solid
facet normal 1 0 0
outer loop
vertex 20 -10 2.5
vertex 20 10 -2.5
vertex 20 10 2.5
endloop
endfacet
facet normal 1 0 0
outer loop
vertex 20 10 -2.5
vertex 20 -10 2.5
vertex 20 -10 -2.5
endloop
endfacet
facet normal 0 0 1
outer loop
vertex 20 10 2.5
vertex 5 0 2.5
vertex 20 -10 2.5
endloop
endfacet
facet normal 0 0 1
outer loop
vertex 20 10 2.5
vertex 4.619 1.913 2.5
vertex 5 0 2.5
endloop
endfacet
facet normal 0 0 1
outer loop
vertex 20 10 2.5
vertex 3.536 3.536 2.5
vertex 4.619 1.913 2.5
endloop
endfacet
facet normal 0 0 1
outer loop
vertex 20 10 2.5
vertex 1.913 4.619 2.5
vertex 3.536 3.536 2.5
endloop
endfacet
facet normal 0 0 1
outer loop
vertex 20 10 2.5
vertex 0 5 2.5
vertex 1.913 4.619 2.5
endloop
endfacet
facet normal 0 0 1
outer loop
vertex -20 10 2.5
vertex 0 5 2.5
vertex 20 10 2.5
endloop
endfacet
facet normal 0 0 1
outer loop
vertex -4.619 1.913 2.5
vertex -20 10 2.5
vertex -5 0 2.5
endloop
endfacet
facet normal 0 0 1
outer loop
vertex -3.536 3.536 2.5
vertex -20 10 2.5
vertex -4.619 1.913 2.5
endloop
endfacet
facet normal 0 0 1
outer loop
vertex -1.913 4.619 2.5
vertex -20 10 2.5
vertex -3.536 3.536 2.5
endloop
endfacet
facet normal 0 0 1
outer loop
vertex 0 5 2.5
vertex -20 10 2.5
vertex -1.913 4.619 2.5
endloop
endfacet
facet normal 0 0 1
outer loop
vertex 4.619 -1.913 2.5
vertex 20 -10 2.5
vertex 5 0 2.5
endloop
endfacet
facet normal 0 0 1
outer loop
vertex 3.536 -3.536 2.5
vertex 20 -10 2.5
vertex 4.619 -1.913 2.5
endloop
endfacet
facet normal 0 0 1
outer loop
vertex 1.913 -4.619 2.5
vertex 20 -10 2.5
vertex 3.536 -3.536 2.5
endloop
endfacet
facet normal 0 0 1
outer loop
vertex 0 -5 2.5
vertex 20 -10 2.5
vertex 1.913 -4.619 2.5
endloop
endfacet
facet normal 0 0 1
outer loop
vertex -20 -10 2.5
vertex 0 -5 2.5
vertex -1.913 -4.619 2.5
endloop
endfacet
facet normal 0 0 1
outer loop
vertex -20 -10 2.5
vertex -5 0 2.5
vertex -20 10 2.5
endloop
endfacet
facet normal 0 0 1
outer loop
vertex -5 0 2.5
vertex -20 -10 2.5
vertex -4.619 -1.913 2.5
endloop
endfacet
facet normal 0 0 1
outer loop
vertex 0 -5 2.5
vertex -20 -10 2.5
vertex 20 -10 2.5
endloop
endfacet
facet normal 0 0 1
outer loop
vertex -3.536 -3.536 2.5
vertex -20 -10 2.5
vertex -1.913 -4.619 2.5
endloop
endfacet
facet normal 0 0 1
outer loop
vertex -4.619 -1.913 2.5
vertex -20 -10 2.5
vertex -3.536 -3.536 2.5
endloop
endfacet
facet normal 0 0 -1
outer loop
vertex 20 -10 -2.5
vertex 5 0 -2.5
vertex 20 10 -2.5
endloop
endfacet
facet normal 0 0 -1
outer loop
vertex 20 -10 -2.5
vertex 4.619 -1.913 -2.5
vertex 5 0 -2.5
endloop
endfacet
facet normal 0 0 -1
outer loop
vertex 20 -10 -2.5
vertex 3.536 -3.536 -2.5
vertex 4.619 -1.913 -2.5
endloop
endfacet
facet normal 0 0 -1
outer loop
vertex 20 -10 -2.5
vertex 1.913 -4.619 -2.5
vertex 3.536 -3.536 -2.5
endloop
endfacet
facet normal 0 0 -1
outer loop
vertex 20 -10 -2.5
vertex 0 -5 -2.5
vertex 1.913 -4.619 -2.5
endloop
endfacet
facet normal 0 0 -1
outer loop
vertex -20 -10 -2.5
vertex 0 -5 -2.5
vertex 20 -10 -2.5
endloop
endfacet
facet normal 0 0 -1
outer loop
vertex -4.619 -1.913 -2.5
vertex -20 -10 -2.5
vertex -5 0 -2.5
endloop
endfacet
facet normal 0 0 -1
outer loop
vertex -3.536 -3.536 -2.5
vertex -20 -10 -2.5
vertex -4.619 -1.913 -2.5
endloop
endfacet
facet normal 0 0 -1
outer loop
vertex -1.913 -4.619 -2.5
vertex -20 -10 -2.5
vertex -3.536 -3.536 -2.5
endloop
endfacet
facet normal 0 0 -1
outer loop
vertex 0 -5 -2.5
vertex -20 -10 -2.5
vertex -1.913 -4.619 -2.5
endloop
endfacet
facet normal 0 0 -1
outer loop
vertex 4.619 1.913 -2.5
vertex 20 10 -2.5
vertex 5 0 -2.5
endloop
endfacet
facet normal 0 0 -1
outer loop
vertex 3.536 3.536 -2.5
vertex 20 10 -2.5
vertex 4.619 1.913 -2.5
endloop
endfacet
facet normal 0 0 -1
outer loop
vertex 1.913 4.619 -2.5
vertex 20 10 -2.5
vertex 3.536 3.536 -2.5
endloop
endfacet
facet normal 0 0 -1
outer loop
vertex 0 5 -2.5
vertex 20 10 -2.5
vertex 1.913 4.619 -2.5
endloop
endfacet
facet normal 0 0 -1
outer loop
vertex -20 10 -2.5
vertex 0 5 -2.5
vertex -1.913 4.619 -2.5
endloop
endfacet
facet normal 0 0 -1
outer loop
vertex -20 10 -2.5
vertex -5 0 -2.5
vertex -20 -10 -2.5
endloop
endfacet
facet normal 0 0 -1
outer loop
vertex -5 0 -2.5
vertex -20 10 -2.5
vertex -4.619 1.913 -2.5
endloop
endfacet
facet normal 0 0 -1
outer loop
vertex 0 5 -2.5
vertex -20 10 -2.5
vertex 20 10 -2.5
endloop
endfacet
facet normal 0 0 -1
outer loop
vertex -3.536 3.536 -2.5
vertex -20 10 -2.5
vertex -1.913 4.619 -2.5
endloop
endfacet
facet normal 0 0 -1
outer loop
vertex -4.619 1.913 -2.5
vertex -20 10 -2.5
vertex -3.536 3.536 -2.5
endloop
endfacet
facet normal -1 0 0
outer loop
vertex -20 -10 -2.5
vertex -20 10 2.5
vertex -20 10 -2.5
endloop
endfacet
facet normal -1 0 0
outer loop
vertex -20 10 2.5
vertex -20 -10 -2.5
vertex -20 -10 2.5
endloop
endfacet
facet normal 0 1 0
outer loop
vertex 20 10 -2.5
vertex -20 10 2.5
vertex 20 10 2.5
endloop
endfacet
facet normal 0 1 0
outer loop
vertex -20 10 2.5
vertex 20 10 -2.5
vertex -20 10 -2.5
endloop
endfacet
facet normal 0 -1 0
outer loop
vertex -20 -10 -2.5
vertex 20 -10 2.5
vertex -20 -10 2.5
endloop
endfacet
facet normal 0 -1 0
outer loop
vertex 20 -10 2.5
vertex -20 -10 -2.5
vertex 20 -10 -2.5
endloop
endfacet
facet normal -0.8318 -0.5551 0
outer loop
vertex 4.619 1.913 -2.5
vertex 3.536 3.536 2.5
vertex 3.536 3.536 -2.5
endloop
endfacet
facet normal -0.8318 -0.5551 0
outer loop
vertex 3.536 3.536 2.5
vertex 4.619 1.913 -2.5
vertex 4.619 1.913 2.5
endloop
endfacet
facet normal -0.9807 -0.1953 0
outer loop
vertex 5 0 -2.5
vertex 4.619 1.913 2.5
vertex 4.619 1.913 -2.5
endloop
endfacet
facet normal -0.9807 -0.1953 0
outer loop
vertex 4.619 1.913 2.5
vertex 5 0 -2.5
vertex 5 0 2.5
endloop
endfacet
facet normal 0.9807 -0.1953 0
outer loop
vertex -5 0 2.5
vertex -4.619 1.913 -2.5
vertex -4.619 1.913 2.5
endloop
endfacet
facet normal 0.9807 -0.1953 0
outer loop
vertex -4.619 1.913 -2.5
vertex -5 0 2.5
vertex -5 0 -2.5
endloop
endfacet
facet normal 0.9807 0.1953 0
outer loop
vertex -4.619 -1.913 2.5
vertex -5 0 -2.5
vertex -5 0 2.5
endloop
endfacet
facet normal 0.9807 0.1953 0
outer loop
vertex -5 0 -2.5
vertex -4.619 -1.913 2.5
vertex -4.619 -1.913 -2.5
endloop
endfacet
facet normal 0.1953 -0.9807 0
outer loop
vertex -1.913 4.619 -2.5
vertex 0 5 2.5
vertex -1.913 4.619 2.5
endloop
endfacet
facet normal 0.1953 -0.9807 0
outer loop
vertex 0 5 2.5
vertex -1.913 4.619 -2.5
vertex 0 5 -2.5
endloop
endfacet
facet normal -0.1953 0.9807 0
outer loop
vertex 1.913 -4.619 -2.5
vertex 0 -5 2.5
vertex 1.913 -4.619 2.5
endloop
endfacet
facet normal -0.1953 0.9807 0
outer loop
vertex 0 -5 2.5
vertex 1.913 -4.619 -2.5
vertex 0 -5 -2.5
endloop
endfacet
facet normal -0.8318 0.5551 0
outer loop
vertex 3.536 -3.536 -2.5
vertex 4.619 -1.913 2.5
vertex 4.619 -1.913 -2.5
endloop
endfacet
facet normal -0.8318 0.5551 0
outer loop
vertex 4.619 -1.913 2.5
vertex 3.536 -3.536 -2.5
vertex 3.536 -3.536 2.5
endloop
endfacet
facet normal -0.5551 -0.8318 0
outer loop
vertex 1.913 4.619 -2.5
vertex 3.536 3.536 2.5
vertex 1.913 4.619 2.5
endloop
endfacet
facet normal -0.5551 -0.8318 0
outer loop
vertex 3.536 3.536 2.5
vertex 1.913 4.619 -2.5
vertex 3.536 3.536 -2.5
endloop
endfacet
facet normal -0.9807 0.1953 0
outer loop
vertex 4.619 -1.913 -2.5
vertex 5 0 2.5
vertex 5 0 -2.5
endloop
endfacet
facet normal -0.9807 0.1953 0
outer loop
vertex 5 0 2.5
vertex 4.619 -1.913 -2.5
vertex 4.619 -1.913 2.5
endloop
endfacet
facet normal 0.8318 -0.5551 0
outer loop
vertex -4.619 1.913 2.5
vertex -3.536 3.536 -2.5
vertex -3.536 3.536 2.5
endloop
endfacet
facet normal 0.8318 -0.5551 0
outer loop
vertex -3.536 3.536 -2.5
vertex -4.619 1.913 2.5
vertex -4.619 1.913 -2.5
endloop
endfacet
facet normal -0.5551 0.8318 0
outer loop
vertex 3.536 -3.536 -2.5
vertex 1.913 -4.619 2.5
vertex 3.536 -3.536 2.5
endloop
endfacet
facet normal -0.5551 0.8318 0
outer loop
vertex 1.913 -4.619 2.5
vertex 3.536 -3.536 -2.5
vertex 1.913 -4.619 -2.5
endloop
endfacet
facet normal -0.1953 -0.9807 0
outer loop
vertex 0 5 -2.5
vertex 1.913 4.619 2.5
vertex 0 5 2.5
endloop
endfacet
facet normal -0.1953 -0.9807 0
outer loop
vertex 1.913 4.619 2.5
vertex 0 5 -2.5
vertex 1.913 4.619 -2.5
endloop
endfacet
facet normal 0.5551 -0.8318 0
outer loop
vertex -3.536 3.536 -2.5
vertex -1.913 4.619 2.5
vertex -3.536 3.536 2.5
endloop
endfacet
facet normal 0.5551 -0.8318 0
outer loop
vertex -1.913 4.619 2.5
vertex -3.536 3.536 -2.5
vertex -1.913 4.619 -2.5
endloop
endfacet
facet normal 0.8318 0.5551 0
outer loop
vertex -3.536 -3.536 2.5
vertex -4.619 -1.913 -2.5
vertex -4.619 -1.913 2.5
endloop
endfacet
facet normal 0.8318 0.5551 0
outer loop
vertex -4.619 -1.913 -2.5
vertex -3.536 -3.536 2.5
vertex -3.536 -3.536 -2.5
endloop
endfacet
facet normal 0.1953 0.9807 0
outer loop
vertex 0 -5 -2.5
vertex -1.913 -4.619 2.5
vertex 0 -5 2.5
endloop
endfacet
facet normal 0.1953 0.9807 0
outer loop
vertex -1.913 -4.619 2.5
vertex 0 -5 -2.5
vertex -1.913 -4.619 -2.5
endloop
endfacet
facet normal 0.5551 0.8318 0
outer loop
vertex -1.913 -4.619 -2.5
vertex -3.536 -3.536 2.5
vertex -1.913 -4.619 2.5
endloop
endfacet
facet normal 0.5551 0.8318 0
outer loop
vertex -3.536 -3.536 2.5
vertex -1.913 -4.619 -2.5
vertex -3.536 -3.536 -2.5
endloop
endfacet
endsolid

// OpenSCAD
// Function to create the original central block with protruding extensions
module central_block_original() {
    difference() {
        // Main rectangular block
        cube([40, 20, 5], center = true);
        
        // Protruding rectangular extensions
        translate([-25, 0, 0]) cube([10, 20, 5], center = true);
        translate([25, 0, 0]) cube([10, 20, 5], center = true);
        
        // Central cylindrical hole
        cylinder(h = 5, r = 5, center = true);
    }
}

// Generate the 3D model
central_block_original();
